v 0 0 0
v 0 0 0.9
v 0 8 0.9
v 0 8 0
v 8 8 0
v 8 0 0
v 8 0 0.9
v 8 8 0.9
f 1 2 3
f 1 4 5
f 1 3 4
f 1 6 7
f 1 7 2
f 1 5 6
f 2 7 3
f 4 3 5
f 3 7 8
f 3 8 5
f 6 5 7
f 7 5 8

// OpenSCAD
/* Warning, this is a very basic generator with a lot of approximation 
input data : [VQFN, JXX, 8x8x0.9mm, 64, , A, C04-00437A]
generated by com.zoubworld.electronics.cad.model3d.Basic
Date : Sun Feb 15 10:50:48 CET 2026
*/

//body
color("black")
translate([0,0,0])
cube([8.0,8.0,0.9], center=false);
